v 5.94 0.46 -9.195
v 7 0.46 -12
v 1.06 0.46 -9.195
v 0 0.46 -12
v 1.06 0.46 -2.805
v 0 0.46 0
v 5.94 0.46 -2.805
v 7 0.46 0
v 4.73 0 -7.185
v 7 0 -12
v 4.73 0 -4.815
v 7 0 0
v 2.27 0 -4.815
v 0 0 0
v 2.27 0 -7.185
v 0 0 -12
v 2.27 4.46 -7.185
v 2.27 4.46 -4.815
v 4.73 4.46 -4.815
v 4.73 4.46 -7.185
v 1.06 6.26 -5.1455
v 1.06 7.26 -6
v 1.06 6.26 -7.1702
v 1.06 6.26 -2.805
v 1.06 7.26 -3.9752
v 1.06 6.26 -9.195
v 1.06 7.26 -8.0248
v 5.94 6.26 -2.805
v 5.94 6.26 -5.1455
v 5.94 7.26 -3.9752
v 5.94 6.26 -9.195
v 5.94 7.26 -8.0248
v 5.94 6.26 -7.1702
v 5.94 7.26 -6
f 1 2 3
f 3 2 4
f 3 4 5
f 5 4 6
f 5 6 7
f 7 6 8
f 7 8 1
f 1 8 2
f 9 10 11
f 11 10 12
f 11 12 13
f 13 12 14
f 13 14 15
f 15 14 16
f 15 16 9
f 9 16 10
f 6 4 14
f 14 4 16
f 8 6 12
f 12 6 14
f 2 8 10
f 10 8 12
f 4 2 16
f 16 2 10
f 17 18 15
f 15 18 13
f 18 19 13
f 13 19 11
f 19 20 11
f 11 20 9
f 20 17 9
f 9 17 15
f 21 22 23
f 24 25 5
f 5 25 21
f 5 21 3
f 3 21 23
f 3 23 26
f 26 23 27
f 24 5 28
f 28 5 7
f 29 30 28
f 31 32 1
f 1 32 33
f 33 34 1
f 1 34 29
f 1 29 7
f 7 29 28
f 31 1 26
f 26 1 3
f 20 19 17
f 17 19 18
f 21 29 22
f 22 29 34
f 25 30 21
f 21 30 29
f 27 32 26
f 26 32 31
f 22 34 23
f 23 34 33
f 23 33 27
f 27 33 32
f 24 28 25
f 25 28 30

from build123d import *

# Parameters (mm, degrees)
SKICA1_W                 = 7
SKICA1_H                 = 12
SKICA1_W_2               = 2.46
SKICA1_H_2               = 2.37
P_IDAT_VYSUNUT_M1_DEPTH  = 0.46
SKICA2_W                 = 4.88
SKICA2_H                 = 6.39
SKICA2_W_2               = 2.46
SKICA2_H_2               = 2.37
P_IDAT_VYSUNUT_M2_DEPTH  = 4
SKICA3_W                 = 4.88
SKICA3_H                 = 6.39
P_IDAT_VYSUNUT_M3_DEPTH  = 2.8
ODEBRAT_VYSUNUT_M1_DEPTH = 10


with BuildPart() as part:
    # Skica1 → Přidat vysunutím1 (new body)
    with BuildSketch(Plane(origin=(0, 0, 0), x_dir=(1, 0, 0), z_dir=(0, 1, 0))):
        with Locations((3.5, 6)):
            Rectangle(SKICA1_W, SKICA1_H)
        with Locations((3.5, 6)):
            Rectangle(SKICA1_W_2, SKICA1_H_2, mode=Mode.SUBTRACT)
    extrude(amount=P_IDAT_VYSUNUT_M1_DEPTH)

    # Skica2 → Přidat vysunutím2 (add)
    with BuildSketch(Plane(origin=(0, 0.46, 0), x_dir=(1, 0, 0), z_dir=(0, 1, 0))):
        with Locations((3.5, 6)):
            Rectangle(SKICA2_W, SKICA2_H)
        with Locations((3.5, 6)):
            Rectangle(SKICA2_W_2, SKICA2_H_2, mode=Mode.SUBTRACT)
    extrude(amount=P_IDAT_VYSUNUT_M2_DEPTH)

    # Skica3 → Přidat vysunutím3 (add)
    with BuildSketch(Plane(origin=(0, 4.46, 0), x_dir=(1, 0, 0), z_dir=(0, 1, 0))):
        with Locations((3.5, 6)):
            Rectangle(SKICA3_W, SKICA3_H)
    extrude(amount=P_IDAT_VYSUNUT_M3_DEPTH)

    # Skica4 → Odebrat vysunutím1 (cut)
    with BuildSketch(Plane.ZY.offset(-1.06)):
        Polygon((-9.195, 7.26), (-9.195, 6.26), (-8.024764385, 7.26), align=None)
        Polygon((-6, 7.26), (-8.024764385, 7.26), (-7.170235615, 6.26), align=None)
        Polygon((-3.975235615, 7.26), (-6, 7.26), (-5.145471231, 6.26), align=None)
        Polygon((-2.805, 7.26), (-3.975235615, 7.26), (-2.805, 6.26), align=None)
    extrude(amount=-ODEBRAT_VYSUNUT_M1_DEPTH, mode=Mode.SUBTRACT)


solid = part.part
